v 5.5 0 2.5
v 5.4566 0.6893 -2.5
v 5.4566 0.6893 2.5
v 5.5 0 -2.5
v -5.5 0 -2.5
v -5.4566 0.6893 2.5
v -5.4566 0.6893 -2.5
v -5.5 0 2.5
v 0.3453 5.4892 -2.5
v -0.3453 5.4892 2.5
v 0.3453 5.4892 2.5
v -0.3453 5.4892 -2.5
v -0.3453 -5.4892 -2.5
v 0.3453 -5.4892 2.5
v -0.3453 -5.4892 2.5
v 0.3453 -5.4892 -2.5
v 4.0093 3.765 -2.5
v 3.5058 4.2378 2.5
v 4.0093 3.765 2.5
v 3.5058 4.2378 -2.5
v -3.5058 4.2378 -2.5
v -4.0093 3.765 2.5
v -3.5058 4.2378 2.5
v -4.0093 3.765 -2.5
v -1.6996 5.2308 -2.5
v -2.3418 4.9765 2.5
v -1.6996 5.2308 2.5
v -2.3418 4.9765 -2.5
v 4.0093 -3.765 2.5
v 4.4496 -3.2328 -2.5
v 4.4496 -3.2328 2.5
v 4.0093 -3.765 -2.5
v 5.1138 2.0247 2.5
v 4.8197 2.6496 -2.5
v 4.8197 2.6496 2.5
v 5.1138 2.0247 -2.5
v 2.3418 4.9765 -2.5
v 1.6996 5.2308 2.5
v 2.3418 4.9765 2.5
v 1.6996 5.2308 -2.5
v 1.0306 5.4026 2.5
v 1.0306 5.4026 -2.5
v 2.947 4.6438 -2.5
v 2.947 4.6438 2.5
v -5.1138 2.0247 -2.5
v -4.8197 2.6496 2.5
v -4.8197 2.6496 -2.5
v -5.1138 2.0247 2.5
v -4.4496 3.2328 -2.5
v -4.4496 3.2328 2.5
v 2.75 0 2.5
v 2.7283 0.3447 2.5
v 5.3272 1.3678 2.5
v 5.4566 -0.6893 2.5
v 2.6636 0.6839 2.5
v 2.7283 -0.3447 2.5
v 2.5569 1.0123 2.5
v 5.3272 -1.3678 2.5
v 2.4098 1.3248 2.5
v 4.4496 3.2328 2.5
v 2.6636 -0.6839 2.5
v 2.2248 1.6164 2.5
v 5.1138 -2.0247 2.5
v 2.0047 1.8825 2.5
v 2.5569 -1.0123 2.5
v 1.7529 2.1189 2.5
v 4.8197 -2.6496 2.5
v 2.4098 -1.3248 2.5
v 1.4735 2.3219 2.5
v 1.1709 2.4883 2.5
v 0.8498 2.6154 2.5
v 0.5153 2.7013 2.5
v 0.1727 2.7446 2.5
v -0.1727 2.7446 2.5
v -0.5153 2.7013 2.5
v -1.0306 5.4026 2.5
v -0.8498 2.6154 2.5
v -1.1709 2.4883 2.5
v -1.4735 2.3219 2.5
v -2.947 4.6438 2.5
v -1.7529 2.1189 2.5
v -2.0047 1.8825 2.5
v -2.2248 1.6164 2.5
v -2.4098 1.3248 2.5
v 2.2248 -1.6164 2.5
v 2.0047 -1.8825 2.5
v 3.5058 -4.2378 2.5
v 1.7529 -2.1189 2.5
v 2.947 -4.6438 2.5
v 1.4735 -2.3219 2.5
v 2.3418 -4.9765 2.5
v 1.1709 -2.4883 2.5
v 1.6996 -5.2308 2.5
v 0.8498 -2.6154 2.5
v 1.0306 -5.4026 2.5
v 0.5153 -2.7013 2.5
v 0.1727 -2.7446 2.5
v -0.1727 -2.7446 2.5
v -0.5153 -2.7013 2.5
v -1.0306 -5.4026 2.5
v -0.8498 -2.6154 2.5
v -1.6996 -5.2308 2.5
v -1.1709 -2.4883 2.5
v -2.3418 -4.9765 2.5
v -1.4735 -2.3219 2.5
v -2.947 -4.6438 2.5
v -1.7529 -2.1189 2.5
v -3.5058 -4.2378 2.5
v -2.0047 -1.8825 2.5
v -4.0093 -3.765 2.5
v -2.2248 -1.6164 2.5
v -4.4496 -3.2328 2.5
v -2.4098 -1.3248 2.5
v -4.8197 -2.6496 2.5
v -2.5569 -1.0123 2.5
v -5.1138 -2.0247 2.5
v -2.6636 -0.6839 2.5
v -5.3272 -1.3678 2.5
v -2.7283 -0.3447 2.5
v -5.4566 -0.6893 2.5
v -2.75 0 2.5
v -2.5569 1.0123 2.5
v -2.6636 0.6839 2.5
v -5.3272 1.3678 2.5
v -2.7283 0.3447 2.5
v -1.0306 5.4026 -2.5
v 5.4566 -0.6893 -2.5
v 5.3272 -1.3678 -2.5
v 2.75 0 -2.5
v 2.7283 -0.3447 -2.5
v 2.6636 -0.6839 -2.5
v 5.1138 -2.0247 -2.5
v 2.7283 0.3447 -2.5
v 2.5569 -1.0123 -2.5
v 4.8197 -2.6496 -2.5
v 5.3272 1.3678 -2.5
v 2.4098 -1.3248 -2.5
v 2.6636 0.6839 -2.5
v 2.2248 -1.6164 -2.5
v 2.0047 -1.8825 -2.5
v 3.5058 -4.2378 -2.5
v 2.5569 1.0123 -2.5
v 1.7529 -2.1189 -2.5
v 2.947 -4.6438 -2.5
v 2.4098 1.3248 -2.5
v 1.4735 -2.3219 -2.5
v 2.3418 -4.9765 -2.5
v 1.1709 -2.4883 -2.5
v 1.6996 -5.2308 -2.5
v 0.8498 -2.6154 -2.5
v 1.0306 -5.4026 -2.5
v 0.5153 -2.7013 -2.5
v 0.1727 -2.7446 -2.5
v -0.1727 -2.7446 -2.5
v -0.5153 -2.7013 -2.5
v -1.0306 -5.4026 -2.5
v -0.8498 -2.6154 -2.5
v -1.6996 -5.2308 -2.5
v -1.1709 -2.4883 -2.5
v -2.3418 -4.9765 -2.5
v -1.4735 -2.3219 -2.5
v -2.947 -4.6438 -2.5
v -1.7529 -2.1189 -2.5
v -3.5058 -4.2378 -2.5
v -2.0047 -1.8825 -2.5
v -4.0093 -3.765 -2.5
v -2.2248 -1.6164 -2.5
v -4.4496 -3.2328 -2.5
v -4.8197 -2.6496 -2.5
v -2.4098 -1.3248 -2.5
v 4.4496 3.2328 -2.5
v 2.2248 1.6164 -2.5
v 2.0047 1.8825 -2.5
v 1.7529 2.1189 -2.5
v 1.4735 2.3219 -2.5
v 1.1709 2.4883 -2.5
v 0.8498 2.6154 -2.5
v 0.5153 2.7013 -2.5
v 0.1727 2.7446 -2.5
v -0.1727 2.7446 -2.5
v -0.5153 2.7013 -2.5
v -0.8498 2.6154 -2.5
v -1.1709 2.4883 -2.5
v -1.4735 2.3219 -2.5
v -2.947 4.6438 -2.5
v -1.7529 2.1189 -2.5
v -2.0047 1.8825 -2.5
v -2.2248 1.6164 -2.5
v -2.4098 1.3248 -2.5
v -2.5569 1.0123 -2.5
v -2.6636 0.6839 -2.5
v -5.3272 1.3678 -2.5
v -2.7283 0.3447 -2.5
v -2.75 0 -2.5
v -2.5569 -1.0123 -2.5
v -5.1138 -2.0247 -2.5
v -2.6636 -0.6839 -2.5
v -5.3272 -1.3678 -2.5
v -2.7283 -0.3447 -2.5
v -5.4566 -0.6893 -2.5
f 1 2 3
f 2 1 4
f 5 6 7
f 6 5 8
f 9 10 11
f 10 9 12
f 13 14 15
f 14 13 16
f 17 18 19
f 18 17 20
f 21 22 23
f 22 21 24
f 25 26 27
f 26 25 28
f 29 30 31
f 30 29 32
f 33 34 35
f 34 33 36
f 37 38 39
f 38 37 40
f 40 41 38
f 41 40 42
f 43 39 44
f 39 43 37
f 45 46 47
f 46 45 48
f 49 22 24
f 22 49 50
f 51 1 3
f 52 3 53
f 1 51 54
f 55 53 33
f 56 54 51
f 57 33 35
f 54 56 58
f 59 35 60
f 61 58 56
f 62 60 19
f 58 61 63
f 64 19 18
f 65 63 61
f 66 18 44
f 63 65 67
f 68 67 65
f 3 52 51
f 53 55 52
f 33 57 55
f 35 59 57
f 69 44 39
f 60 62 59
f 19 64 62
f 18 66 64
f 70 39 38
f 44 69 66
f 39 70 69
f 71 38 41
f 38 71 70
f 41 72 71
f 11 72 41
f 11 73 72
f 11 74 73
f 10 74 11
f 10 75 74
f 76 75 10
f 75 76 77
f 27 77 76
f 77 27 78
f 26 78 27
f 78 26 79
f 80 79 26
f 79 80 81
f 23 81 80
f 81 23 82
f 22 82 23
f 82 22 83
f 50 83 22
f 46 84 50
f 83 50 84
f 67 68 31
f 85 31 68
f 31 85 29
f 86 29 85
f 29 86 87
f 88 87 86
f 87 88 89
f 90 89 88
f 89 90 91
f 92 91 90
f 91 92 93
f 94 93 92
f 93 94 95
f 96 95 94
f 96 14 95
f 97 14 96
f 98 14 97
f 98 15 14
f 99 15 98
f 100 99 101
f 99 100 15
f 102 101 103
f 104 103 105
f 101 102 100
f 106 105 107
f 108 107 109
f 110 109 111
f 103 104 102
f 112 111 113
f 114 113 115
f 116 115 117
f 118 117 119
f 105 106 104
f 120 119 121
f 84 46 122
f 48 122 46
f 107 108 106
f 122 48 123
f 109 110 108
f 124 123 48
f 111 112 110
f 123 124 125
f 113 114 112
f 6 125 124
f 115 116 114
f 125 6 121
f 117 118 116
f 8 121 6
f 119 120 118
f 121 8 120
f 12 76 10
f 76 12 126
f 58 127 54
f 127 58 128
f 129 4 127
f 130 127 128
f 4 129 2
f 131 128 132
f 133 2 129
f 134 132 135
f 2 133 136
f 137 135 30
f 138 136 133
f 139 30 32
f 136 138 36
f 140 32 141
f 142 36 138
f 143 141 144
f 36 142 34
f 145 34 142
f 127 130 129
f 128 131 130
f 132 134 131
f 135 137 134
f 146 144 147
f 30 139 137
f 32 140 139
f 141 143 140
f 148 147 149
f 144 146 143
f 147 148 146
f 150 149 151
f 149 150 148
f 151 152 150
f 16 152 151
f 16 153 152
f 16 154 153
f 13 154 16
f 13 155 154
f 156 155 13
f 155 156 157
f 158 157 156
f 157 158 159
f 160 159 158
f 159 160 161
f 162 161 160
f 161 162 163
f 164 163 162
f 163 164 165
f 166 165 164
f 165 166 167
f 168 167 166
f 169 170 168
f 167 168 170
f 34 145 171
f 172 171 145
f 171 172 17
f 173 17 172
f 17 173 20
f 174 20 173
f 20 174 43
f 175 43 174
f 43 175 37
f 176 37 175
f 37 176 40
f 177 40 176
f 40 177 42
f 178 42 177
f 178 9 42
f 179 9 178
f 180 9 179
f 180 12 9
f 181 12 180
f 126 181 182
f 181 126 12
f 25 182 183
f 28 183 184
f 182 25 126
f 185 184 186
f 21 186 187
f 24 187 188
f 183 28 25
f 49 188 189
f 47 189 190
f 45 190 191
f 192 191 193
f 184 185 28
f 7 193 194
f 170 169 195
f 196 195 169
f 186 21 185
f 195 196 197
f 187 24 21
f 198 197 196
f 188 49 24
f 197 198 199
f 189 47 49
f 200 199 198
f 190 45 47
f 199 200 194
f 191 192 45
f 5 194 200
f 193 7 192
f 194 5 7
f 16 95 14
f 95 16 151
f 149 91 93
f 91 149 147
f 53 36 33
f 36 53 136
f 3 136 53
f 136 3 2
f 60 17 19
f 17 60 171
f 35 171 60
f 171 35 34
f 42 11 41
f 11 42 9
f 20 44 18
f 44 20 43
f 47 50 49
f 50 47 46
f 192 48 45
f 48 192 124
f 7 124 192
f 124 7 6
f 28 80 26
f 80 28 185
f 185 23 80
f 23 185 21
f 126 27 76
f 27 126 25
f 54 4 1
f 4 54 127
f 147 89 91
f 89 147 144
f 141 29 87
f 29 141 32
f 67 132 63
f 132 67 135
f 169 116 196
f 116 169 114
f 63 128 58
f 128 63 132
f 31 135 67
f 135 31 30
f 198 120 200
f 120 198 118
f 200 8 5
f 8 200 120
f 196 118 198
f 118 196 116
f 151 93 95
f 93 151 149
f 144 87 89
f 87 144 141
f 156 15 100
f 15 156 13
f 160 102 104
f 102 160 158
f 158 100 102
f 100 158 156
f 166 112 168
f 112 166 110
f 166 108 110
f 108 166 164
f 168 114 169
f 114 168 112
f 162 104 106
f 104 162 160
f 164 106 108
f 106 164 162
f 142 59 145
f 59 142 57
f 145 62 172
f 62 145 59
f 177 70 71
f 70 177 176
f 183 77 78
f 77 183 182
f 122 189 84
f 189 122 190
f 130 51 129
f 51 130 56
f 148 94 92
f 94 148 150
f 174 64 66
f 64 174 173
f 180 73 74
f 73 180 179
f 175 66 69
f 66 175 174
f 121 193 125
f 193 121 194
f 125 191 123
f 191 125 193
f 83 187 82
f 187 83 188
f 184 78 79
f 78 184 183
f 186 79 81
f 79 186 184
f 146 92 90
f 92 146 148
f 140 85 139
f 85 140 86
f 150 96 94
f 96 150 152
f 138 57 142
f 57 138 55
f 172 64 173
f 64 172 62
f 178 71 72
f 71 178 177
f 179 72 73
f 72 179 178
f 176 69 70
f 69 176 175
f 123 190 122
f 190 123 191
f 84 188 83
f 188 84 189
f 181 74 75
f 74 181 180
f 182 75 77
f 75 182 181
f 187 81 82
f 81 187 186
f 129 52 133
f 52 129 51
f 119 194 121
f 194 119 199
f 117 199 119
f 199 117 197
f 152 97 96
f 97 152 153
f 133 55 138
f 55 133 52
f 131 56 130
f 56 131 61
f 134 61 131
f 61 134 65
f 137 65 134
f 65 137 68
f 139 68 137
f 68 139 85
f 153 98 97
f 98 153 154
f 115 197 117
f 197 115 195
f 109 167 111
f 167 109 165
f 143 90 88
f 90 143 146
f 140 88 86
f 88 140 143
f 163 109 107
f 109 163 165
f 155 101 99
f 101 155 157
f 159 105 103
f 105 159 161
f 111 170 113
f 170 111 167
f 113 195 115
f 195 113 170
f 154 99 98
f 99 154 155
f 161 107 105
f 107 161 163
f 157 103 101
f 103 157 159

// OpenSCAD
$fn = 50;


difference() {
	union() {
		translate(v = [0, 0, -2.5000000000]) {
			cylinder(h = 5, r = 5.5000000000);
		}
	}
	union() {
		translate(v = [0, 0, -100.0000000000]) {
			cylinder(h = 200, r = 2.7500000000);
		}
	}
}
